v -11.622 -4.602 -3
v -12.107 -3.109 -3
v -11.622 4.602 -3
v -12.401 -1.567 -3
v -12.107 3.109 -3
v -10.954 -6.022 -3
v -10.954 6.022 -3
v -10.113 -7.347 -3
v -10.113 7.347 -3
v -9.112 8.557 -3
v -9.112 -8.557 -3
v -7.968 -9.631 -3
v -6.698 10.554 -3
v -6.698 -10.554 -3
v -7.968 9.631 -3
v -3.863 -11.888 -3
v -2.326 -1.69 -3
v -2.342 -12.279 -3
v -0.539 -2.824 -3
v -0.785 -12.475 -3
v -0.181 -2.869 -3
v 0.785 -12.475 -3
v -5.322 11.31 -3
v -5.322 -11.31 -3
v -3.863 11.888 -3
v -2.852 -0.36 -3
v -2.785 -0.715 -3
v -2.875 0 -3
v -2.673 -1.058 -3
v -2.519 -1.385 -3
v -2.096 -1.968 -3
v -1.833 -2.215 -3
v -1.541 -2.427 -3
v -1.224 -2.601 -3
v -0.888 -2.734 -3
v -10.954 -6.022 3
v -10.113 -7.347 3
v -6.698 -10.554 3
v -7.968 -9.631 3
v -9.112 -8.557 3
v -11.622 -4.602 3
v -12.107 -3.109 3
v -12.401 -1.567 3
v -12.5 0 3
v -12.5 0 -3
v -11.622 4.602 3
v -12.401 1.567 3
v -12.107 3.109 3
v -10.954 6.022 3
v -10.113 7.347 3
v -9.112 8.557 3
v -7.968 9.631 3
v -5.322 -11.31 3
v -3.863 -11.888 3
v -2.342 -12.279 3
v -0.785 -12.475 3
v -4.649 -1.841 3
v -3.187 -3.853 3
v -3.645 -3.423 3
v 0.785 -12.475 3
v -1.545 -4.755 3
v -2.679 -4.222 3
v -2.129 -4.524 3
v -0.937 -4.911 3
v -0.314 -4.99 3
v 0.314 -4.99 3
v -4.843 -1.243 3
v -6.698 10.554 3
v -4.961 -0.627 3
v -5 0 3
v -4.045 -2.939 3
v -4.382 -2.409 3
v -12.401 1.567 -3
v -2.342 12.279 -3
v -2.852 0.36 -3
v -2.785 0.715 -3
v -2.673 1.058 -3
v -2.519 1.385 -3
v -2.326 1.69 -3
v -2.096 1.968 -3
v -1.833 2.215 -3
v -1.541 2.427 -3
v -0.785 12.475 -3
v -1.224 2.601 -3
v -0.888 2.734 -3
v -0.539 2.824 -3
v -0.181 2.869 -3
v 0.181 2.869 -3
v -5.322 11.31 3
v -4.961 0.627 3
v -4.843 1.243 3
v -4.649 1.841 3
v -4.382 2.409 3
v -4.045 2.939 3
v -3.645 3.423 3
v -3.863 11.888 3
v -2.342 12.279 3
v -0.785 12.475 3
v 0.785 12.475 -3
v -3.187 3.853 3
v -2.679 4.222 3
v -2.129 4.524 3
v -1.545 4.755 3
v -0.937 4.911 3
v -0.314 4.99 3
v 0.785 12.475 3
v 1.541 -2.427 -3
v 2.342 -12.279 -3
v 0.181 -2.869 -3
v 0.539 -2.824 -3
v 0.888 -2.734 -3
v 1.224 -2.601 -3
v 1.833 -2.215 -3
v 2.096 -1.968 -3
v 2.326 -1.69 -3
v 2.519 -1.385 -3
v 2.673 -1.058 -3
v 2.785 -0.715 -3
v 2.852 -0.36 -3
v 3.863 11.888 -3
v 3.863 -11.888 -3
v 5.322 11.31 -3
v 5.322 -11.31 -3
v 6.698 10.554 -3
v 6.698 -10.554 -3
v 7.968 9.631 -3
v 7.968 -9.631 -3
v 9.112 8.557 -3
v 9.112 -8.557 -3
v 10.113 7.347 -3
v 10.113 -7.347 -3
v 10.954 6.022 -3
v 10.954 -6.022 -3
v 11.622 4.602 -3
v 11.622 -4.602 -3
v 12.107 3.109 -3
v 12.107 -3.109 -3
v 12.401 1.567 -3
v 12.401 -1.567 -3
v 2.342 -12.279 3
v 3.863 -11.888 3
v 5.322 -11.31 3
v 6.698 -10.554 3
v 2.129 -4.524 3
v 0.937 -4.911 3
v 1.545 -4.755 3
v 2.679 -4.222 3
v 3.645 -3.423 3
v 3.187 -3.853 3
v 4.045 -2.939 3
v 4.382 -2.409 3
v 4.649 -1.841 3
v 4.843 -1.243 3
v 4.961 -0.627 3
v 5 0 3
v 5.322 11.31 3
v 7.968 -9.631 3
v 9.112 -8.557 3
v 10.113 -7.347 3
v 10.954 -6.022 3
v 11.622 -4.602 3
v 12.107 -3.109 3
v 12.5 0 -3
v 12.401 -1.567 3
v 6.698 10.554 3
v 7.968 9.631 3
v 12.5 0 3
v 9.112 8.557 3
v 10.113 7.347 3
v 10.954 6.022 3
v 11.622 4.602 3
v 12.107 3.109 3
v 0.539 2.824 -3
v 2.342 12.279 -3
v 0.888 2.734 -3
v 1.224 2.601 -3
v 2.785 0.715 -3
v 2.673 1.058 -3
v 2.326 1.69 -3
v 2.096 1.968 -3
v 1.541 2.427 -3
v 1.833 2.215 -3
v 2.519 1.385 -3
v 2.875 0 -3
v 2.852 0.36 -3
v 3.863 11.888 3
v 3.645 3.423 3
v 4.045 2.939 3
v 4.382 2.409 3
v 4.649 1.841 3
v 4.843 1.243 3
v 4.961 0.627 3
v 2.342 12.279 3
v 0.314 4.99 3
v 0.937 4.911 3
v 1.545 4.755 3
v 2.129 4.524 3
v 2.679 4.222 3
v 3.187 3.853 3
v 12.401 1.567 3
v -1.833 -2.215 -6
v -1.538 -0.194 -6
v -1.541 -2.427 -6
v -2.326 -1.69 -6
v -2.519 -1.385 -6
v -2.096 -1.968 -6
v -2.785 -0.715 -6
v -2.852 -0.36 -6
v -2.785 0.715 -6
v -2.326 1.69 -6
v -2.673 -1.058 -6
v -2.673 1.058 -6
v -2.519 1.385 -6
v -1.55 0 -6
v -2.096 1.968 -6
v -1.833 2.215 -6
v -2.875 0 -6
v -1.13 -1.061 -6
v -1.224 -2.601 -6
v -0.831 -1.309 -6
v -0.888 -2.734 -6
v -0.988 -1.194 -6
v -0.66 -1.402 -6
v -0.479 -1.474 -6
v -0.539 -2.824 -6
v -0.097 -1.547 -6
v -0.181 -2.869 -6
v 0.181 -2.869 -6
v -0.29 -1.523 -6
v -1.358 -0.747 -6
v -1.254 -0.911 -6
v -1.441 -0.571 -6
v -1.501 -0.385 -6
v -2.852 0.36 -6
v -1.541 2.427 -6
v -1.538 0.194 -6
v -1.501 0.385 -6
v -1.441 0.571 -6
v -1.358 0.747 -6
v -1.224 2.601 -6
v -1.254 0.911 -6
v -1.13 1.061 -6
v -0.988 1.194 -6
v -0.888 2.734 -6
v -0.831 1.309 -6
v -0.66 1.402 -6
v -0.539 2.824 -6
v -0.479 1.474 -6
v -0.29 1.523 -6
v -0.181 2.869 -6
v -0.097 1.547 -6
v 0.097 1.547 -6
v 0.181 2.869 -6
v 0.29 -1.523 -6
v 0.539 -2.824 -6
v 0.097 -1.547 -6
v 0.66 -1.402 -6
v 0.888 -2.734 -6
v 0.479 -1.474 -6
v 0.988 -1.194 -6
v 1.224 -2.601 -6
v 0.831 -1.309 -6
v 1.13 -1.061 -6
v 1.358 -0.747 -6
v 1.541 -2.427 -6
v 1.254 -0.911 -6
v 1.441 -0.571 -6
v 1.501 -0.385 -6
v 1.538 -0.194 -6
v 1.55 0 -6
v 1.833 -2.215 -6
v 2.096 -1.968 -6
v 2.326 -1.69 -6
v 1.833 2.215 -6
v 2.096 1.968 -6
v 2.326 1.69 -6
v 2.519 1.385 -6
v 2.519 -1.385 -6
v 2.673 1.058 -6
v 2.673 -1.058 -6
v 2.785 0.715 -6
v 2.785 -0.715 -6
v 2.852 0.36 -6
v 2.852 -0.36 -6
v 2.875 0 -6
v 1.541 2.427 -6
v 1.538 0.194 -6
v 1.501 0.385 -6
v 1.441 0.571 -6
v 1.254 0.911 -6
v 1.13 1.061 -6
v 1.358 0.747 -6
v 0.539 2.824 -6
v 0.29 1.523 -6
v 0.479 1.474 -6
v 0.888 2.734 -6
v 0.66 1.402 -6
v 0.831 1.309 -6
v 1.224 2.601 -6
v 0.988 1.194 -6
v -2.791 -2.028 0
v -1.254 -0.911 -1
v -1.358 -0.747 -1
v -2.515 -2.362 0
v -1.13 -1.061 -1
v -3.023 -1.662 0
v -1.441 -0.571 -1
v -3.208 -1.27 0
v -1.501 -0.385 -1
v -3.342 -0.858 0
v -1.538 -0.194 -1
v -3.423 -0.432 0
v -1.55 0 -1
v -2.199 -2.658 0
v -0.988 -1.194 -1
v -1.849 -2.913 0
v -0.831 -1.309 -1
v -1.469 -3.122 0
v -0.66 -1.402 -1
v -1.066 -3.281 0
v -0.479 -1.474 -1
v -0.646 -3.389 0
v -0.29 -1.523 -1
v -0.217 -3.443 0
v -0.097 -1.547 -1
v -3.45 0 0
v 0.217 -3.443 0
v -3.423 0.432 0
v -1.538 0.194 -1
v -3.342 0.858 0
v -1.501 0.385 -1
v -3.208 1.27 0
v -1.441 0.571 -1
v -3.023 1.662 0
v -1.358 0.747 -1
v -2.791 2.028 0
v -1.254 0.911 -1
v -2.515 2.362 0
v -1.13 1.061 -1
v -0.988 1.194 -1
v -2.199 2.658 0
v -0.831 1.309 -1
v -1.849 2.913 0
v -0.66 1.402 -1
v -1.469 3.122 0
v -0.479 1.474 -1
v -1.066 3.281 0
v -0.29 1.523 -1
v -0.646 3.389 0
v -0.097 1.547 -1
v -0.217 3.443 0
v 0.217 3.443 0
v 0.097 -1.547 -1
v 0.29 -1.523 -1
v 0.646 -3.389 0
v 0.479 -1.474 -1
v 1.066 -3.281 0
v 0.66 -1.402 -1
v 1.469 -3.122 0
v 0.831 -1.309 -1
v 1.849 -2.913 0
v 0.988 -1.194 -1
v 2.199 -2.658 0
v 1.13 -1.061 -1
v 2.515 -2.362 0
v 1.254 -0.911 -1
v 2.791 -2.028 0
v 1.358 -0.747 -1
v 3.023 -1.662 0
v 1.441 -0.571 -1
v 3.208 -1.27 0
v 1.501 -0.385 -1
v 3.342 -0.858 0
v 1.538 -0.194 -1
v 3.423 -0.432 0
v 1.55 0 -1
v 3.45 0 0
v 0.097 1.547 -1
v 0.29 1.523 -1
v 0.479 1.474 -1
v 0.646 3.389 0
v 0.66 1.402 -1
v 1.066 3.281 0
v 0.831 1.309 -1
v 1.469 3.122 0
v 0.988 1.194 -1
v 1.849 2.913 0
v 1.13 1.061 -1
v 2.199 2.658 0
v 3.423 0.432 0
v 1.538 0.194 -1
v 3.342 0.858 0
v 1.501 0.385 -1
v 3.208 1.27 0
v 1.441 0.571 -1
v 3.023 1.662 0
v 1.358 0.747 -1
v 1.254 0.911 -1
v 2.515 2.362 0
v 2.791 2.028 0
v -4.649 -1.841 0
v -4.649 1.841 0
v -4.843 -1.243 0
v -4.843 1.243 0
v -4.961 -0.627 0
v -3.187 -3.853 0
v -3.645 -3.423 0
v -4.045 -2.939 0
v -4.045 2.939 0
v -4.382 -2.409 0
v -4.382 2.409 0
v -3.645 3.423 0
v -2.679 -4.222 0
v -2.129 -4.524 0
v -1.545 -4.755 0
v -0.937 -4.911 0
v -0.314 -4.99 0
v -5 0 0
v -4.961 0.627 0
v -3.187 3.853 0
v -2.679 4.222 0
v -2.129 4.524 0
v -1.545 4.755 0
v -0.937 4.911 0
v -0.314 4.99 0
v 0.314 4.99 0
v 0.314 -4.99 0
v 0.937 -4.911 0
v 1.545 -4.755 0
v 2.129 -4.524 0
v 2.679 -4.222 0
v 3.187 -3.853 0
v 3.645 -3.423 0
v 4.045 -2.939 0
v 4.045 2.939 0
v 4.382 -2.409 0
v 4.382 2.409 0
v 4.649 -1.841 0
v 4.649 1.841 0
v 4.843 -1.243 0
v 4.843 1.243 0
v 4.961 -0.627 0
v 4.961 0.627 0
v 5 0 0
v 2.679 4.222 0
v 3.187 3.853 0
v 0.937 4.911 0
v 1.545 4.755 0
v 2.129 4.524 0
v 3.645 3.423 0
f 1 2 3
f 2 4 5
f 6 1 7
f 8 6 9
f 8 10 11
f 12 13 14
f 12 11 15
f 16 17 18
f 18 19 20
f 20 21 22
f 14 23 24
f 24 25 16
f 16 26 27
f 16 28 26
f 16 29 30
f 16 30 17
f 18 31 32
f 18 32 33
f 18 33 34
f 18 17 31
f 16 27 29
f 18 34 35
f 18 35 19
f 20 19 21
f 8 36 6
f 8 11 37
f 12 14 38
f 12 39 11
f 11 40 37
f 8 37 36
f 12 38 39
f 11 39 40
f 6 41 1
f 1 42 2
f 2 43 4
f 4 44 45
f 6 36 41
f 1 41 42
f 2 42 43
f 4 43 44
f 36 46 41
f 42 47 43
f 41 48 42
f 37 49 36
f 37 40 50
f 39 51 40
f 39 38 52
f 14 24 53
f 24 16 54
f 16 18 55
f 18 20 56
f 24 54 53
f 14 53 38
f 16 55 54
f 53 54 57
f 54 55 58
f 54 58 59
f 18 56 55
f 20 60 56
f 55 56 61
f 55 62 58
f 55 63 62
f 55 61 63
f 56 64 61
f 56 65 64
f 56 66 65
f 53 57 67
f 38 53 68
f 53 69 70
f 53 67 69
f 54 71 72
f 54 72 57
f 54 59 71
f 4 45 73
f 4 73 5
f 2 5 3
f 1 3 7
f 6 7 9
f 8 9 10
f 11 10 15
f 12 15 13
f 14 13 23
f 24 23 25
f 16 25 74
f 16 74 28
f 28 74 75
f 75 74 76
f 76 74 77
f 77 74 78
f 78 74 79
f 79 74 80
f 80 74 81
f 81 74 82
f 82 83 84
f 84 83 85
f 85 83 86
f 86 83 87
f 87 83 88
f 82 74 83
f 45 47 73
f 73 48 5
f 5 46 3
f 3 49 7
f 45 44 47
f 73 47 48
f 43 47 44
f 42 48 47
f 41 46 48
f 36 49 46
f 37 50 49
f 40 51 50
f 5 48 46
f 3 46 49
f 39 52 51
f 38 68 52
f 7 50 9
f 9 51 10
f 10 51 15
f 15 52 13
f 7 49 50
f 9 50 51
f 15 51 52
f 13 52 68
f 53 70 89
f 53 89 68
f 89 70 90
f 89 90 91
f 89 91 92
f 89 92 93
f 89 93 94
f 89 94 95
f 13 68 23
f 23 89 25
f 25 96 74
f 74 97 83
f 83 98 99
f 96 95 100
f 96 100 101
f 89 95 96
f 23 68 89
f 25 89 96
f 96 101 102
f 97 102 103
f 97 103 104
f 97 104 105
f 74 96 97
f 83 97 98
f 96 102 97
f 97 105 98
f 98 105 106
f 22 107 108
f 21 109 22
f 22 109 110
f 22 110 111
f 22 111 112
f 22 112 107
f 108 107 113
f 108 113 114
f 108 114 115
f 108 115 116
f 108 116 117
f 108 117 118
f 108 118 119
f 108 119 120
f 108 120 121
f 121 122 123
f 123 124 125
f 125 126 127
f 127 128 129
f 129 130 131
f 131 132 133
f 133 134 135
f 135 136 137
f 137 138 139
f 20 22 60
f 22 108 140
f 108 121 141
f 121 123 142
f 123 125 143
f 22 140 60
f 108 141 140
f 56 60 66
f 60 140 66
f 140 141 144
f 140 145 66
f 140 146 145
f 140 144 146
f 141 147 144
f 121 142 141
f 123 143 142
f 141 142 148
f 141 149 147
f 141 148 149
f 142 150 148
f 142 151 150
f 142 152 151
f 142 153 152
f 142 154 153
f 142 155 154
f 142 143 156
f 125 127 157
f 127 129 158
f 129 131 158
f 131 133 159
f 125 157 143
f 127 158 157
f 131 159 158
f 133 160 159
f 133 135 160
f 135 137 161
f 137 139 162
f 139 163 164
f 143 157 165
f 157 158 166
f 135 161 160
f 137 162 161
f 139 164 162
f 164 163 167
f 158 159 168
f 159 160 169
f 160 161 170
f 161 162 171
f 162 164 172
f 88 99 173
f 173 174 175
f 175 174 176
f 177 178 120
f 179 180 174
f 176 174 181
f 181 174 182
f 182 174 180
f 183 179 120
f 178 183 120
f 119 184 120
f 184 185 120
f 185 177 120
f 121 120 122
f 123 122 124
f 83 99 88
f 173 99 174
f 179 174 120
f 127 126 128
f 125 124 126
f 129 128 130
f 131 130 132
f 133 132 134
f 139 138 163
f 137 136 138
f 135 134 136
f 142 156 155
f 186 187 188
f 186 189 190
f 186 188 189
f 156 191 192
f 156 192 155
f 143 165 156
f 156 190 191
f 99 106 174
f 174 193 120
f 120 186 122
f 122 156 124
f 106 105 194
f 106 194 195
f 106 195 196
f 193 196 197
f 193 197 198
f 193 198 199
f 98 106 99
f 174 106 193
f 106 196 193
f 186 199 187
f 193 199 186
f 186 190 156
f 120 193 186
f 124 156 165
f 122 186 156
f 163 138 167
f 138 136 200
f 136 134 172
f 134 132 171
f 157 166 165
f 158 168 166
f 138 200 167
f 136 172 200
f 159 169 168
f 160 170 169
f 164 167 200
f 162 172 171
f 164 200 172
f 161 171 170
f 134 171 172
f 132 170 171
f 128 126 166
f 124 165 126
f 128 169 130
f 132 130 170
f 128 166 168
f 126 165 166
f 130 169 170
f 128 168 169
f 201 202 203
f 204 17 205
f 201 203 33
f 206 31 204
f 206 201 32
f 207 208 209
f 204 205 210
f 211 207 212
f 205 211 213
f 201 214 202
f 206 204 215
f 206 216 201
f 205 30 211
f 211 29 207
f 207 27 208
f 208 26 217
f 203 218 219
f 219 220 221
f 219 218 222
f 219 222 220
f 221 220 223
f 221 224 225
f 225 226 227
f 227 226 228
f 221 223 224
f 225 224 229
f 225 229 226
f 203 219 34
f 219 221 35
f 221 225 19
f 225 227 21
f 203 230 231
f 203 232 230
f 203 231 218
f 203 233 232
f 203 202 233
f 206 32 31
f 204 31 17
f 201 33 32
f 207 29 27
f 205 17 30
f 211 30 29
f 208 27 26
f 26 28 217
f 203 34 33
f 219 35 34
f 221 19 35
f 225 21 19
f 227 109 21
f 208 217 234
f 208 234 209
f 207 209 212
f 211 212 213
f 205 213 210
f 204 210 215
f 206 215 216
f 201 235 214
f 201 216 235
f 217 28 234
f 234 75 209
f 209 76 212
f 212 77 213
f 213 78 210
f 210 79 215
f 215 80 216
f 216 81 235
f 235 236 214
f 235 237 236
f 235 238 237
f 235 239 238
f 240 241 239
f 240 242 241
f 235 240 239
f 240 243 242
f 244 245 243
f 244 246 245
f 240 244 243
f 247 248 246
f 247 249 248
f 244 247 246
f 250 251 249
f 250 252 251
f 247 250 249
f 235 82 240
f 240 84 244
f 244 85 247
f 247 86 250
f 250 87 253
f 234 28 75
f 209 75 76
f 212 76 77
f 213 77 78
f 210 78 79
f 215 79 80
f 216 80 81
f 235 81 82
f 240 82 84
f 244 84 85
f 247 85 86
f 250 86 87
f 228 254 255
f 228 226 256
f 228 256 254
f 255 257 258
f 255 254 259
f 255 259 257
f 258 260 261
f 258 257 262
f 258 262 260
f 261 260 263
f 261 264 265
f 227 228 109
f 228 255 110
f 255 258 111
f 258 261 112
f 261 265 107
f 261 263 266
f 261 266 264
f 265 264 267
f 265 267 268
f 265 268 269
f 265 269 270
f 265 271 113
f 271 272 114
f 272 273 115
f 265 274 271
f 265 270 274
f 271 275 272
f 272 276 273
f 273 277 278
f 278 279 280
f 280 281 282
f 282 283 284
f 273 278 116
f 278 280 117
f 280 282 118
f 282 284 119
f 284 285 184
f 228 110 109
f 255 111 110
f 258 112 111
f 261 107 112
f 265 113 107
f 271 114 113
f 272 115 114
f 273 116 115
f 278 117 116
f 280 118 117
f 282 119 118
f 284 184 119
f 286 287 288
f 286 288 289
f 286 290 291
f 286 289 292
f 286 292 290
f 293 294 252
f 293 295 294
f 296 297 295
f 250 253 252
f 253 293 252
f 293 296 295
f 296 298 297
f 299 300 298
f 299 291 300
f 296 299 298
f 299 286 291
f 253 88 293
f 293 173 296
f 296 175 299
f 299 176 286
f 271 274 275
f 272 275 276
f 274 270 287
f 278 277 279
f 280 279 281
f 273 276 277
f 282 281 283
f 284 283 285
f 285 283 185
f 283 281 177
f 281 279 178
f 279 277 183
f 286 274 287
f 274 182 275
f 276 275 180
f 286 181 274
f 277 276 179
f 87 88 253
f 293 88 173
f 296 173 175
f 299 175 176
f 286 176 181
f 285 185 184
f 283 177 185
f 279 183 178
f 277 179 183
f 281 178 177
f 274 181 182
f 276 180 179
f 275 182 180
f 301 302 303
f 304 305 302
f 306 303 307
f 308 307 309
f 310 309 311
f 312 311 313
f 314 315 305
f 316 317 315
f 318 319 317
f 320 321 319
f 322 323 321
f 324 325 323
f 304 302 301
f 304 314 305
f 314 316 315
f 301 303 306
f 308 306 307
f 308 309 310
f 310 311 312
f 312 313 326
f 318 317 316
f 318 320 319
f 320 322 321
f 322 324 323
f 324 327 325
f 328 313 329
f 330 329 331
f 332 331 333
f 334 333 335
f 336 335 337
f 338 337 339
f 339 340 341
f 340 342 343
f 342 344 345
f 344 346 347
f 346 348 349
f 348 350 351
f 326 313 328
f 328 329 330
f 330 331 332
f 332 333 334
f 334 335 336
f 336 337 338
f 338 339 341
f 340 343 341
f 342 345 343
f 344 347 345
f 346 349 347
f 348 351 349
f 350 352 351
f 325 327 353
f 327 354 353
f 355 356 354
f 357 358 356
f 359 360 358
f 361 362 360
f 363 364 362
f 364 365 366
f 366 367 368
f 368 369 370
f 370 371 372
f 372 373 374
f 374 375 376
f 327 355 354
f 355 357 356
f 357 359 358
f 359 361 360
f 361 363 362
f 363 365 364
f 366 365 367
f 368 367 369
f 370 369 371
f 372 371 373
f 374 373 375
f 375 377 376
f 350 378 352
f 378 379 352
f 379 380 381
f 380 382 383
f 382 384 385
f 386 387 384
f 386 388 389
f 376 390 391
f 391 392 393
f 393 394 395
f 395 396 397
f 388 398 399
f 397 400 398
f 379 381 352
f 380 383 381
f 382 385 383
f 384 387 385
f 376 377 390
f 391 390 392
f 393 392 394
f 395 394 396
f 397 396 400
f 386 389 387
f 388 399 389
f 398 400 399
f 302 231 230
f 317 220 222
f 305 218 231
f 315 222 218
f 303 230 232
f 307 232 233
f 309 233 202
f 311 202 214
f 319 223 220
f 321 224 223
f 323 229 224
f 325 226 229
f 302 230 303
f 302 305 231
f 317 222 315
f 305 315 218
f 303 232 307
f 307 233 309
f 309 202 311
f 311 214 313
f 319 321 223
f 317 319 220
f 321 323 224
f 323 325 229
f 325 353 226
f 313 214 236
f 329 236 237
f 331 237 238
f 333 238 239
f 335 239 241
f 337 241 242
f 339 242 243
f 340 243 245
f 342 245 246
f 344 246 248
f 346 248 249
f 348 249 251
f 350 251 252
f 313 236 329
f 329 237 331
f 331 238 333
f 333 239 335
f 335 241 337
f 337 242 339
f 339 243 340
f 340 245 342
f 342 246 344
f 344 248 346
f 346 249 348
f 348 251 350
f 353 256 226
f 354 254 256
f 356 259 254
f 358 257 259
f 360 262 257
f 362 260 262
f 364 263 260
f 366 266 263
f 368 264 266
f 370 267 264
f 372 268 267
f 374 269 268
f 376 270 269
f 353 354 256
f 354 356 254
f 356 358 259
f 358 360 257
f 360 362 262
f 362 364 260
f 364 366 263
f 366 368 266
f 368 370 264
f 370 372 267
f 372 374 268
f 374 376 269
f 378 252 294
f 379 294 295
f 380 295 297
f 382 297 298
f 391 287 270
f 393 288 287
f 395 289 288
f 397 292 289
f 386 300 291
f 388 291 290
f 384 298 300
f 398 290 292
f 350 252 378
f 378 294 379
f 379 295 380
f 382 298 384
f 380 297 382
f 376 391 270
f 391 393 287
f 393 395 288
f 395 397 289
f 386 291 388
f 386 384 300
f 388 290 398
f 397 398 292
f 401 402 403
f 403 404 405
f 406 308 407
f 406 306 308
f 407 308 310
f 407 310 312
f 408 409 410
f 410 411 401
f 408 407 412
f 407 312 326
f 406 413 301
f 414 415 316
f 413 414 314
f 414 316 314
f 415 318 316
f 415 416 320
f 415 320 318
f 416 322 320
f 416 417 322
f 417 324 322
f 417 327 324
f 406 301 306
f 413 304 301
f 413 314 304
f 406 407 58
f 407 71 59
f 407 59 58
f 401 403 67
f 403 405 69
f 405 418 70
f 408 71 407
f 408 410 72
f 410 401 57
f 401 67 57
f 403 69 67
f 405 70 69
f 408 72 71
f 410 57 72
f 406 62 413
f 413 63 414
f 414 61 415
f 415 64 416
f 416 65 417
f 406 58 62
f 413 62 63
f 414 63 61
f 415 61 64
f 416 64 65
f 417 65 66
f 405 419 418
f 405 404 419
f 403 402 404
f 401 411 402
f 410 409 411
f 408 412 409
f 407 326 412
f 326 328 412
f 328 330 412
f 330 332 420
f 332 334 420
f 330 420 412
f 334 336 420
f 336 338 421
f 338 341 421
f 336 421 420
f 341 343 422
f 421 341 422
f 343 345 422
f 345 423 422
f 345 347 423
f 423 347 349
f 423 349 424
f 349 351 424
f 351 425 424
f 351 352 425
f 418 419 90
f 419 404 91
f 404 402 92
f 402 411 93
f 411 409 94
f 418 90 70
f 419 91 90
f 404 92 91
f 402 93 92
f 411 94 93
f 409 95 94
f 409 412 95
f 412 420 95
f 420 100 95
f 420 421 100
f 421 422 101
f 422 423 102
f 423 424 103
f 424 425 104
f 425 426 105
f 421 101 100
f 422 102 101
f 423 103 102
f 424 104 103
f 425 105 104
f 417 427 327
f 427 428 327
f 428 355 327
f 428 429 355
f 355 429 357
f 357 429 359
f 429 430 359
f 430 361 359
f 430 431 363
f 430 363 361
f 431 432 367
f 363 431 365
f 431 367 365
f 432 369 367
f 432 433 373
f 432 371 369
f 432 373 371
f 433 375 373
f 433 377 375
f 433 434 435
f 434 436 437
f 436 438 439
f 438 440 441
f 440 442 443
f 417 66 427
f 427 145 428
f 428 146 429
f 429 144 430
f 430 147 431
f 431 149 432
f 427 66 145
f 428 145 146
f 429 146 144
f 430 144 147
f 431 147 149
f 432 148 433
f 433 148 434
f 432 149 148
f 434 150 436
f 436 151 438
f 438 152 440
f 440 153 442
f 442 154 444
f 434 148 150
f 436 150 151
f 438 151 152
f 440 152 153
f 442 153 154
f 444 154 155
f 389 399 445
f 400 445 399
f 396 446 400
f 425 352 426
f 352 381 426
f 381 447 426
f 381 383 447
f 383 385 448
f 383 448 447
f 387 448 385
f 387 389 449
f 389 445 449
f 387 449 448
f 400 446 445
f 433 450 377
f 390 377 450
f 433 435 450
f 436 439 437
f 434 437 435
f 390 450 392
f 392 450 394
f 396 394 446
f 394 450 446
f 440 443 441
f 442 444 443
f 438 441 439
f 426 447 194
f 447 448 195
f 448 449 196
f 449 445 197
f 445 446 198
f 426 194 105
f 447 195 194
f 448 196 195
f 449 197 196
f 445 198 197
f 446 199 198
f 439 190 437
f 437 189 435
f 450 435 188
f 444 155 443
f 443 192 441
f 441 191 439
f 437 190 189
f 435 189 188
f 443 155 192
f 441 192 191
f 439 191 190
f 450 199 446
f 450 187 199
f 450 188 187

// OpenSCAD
$fn = 50;


difference() {
	union() {
		translate(v = [0, 0, -3.0000000000]) {
			cylinder(h = 6, r = 12.5000000000);
		}
		#translate(v = [0, 0, -6.0000000000]) {
			cylinder(h = 6, r = 2.8750000000);
		}
	}
	union() {
		translate(v = [0, 0, 0]) {
			rotate(a = [0, 0, 0]) {
				difference() {
					union() {
						translate(v = [0, 0, -6.0000000000]) {
							cylinder(h = 6, r = 1.2500000000);
						}
						translate(v = [0, 0, -1.0000000000]) {
							cylinder(h = 1.0000000000, r1 = 1.5500000000, r2 = 3.4500000000);
						}
						translate(v = [0, 0, -6.0000000000]) {
							cylinder(h = 6, r = 1.5500000000);
						}
						translate(v = [0, 0, -6.0000000000]) {
							cylinder(h = 6, r = 1.2500000000);
						}
					}
					union();
				}
			}
		}
		#cylinder(h = 3, r = 5.0000000000);
	}
}
